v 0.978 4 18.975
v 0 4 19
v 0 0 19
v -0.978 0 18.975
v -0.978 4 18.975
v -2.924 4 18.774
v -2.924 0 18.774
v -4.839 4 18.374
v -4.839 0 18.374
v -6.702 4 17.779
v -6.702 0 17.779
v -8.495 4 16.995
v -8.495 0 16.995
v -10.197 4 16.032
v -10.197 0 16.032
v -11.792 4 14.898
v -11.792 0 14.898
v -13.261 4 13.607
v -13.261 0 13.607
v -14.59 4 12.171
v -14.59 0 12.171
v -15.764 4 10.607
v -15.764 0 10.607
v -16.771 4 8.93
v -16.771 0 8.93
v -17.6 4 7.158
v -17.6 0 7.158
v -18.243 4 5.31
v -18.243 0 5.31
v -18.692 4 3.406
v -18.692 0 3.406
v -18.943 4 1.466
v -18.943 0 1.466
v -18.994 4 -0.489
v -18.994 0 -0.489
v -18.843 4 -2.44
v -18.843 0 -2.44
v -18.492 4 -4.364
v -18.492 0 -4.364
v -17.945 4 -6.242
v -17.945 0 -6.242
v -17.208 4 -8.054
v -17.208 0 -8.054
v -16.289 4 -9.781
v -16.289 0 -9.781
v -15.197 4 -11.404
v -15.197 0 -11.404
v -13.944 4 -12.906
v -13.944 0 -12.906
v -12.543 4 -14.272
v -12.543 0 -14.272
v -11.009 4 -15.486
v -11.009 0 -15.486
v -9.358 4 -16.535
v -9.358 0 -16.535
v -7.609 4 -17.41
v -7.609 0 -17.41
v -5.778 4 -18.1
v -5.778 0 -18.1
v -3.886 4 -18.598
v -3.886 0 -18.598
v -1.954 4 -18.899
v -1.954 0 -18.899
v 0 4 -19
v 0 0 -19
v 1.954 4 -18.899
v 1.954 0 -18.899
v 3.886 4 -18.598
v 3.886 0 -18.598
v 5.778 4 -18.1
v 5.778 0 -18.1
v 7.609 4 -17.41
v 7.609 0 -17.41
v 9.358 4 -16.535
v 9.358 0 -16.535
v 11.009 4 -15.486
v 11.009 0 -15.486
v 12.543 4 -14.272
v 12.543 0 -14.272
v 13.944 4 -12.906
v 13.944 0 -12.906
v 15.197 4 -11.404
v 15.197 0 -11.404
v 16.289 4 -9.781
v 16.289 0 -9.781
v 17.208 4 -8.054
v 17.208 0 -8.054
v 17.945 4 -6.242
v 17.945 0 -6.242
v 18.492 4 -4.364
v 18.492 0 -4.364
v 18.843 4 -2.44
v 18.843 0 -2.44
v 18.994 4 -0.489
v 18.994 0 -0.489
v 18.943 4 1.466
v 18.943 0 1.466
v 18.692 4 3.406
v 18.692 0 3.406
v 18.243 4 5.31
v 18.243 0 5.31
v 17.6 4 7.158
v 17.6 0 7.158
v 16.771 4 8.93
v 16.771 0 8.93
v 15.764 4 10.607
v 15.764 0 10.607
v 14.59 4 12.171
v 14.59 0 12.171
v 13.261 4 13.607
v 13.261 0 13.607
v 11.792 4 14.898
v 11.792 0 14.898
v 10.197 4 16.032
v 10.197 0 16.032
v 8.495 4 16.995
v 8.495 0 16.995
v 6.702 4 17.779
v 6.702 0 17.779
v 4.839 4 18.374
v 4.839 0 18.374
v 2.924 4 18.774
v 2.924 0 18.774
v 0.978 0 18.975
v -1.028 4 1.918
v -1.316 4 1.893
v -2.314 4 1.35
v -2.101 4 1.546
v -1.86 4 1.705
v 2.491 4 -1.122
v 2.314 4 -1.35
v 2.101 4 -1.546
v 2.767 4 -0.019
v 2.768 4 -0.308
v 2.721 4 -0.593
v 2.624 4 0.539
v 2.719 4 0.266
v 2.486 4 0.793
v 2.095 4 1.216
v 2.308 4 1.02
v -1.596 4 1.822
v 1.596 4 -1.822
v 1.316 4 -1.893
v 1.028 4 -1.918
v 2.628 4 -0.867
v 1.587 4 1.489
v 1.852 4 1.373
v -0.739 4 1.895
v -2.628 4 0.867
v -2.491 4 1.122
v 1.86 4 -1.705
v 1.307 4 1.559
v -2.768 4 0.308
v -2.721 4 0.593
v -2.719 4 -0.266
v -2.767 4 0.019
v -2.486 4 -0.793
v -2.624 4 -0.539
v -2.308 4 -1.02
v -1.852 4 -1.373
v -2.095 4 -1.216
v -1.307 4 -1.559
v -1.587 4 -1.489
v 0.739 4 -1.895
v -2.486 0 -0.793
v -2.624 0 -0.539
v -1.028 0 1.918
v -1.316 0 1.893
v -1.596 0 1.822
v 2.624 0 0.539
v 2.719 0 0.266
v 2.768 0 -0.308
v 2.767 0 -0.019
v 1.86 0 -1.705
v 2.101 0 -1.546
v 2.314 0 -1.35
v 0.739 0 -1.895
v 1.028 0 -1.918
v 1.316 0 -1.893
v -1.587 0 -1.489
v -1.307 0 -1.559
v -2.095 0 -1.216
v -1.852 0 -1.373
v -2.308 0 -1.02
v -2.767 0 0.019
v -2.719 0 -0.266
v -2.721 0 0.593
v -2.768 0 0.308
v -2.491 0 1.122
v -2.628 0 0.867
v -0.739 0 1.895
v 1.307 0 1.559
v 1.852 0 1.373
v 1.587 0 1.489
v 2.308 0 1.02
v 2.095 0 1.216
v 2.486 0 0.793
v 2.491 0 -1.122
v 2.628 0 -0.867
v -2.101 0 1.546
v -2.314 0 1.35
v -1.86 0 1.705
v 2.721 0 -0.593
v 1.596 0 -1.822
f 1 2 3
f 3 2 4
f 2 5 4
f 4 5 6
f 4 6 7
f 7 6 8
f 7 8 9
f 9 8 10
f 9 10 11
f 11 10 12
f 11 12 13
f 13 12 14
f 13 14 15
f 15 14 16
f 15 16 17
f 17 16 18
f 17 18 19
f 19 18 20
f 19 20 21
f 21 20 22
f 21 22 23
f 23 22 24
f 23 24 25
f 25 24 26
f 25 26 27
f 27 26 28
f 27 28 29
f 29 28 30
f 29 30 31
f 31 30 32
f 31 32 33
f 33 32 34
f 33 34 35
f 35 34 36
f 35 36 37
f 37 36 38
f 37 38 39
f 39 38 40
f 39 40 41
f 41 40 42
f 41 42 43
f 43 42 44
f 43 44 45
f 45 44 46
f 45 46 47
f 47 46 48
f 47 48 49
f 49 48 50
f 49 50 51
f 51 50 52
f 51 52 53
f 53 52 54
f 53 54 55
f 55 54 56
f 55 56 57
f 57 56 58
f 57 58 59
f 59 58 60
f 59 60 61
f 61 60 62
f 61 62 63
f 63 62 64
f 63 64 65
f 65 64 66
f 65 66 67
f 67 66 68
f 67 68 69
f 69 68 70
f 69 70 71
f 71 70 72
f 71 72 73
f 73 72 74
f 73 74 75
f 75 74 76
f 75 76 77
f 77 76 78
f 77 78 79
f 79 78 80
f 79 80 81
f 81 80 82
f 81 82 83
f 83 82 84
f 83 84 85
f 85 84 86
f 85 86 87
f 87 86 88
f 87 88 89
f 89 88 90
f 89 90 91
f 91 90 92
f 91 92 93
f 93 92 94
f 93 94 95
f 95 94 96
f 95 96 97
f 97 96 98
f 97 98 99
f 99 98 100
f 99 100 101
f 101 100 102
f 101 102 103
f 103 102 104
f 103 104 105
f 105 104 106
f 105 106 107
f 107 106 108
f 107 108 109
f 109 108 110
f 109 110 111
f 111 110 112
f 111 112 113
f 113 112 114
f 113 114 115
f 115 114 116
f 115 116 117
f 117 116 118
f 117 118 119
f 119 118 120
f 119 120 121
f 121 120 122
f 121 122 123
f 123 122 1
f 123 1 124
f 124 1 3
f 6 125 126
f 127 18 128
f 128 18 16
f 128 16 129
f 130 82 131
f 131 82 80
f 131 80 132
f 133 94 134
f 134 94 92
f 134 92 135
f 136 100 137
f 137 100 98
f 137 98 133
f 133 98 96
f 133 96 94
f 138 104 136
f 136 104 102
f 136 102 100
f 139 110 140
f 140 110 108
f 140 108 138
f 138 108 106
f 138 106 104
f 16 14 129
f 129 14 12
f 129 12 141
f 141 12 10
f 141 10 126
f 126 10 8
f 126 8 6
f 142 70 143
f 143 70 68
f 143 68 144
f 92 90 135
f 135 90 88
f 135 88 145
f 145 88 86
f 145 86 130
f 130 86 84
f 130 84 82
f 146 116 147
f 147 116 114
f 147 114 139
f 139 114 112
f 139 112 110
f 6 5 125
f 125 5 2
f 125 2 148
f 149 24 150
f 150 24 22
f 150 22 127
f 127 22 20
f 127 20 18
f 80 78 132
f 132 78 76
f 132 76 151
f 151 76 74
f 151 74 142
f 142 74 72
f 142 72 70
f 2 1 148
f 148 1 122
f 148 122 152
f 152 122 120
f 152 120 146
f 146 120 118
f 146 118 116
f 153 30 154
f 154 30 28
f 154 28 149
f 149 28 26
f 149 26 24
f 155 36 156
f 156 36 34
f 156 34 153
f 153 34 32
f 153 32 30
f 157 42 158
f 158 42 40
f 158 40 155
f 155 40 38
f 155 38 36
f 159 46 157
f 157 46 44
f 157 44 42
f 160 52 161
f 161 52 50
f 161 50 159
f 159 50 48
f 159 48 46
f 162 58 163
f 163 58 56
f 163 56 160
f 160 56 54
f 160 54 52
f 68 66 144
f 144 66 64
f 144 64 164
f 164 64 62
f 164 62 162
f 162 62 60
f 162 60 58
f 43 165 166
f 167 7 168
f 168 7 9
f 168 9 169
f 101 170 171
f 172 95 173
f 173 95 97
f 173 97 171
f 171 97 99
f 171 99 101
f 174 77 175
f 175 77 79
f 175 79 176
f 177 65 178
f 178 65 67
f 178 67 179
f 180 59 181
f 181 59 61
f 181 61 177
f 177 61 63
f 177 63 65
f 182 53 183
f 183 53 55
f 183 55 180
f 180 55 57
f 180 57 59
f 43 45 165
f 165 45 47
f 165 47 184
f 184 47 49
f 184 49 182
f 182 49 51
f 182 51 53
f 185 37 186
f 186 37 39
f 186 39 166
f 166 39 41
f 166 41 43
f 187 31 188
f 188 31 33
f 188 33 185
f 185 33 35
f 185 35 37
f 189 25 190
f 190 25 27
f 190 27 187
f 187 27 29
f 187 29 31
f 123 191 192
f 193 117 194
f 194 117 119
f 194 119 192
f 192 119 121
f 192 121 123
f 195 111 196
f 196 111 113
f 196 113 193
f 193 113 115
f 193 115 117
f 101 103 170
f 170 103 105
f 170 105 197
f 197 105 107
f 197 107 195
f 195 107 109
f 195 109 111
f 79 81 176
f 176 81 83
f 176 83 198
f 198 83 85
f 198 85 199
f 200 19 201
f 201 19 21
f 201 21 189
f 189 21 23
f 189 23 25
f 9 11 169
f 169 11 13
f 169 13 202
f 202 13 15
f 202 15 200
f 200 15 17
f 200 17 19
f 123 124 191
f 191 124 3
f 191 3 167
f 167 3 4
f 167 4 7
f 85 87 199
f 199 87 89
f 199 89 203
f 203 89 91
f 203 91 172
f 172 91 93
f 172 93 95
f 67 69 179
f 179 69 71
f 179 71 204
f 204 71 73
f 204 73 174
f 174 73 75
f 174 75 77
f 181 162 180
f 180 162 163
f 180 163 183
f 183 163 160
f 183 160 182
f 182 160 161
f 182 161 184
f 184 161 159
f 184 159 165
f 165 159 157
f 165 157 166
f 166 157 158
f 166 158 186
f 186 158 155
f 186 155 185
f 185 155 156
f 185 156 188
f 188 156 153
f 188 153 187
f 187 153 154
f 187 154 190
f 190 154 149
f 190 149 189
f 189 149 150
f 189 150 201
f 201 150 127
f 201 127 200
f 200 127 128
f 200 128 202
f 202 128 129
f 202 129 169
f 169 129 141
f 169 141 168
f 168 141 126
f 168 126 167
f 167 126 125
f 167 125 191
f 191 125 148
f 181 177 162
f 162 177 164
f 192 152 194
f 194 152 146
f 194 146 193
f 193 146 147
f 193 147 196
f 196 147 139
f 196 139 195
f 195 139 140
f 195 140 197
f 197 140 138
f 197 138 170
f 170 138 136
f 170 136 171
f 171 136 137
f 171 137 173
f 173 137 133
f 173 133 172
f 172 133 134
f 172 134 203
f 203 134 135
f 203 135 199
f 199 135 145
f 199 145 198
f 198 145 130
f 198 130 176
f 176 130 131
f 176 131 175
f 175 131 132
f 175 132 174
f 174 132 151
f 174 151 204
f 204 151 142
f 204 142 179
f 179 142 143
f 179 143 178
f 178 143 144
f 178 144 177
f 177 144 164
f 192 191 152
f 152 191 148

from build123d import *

# Parameters (mm, degrees)
SKETCH_1_R          = 19
EXTRUDE_1_DEPTH     = 4
CUT_EXTRUDE_1_DEPTH = 28.166155414


with BuildPart() as part:
    # ｽｹｯﾁ1 → ﾎﾞｽ - 押し出し1 (new body)
    with BuildSketch(Plane(origin=(0, 0, 0), x_dir=(1, 0, 0), z_dir=(0, 1, 0))):
        with Locations(Location((0, 0, 0), (0, 0, 270))):
            Circle(SKETCH_1_R)
    extrude(amount=EXTRUDE_1_DEPTH)

    # ｽｹｯﾁ2 → ｶｯﾄ - 押し出し1 (cut, through all)
    with BuildSketch(Plane(origin=(0, 4, 0), x_dir=(1, 0, 0), z_dir=(0, 1, 0))):
        with BuildLine():
            Line((-1.306849725, 1.558759919), (0.739448512, 1.894941843))
            ThreePointArc((0.739448512, 1.894941843), (2.75, 0.451791569), (1.306849725, -1.558759919))
            Line((1.306849725, -1.558759919), (-0.739448512, -1.894941843))
            ThreePointArc((-0.739448512, -1.894941843), (-2.75, -0.451791569), (-1.306849725, 1.558759919))
        make_face()
    extrude(amount=-CUT_EXTRUDE_1_DEPTH, mode=Mode.SUBTRACT)


solid = part.part
